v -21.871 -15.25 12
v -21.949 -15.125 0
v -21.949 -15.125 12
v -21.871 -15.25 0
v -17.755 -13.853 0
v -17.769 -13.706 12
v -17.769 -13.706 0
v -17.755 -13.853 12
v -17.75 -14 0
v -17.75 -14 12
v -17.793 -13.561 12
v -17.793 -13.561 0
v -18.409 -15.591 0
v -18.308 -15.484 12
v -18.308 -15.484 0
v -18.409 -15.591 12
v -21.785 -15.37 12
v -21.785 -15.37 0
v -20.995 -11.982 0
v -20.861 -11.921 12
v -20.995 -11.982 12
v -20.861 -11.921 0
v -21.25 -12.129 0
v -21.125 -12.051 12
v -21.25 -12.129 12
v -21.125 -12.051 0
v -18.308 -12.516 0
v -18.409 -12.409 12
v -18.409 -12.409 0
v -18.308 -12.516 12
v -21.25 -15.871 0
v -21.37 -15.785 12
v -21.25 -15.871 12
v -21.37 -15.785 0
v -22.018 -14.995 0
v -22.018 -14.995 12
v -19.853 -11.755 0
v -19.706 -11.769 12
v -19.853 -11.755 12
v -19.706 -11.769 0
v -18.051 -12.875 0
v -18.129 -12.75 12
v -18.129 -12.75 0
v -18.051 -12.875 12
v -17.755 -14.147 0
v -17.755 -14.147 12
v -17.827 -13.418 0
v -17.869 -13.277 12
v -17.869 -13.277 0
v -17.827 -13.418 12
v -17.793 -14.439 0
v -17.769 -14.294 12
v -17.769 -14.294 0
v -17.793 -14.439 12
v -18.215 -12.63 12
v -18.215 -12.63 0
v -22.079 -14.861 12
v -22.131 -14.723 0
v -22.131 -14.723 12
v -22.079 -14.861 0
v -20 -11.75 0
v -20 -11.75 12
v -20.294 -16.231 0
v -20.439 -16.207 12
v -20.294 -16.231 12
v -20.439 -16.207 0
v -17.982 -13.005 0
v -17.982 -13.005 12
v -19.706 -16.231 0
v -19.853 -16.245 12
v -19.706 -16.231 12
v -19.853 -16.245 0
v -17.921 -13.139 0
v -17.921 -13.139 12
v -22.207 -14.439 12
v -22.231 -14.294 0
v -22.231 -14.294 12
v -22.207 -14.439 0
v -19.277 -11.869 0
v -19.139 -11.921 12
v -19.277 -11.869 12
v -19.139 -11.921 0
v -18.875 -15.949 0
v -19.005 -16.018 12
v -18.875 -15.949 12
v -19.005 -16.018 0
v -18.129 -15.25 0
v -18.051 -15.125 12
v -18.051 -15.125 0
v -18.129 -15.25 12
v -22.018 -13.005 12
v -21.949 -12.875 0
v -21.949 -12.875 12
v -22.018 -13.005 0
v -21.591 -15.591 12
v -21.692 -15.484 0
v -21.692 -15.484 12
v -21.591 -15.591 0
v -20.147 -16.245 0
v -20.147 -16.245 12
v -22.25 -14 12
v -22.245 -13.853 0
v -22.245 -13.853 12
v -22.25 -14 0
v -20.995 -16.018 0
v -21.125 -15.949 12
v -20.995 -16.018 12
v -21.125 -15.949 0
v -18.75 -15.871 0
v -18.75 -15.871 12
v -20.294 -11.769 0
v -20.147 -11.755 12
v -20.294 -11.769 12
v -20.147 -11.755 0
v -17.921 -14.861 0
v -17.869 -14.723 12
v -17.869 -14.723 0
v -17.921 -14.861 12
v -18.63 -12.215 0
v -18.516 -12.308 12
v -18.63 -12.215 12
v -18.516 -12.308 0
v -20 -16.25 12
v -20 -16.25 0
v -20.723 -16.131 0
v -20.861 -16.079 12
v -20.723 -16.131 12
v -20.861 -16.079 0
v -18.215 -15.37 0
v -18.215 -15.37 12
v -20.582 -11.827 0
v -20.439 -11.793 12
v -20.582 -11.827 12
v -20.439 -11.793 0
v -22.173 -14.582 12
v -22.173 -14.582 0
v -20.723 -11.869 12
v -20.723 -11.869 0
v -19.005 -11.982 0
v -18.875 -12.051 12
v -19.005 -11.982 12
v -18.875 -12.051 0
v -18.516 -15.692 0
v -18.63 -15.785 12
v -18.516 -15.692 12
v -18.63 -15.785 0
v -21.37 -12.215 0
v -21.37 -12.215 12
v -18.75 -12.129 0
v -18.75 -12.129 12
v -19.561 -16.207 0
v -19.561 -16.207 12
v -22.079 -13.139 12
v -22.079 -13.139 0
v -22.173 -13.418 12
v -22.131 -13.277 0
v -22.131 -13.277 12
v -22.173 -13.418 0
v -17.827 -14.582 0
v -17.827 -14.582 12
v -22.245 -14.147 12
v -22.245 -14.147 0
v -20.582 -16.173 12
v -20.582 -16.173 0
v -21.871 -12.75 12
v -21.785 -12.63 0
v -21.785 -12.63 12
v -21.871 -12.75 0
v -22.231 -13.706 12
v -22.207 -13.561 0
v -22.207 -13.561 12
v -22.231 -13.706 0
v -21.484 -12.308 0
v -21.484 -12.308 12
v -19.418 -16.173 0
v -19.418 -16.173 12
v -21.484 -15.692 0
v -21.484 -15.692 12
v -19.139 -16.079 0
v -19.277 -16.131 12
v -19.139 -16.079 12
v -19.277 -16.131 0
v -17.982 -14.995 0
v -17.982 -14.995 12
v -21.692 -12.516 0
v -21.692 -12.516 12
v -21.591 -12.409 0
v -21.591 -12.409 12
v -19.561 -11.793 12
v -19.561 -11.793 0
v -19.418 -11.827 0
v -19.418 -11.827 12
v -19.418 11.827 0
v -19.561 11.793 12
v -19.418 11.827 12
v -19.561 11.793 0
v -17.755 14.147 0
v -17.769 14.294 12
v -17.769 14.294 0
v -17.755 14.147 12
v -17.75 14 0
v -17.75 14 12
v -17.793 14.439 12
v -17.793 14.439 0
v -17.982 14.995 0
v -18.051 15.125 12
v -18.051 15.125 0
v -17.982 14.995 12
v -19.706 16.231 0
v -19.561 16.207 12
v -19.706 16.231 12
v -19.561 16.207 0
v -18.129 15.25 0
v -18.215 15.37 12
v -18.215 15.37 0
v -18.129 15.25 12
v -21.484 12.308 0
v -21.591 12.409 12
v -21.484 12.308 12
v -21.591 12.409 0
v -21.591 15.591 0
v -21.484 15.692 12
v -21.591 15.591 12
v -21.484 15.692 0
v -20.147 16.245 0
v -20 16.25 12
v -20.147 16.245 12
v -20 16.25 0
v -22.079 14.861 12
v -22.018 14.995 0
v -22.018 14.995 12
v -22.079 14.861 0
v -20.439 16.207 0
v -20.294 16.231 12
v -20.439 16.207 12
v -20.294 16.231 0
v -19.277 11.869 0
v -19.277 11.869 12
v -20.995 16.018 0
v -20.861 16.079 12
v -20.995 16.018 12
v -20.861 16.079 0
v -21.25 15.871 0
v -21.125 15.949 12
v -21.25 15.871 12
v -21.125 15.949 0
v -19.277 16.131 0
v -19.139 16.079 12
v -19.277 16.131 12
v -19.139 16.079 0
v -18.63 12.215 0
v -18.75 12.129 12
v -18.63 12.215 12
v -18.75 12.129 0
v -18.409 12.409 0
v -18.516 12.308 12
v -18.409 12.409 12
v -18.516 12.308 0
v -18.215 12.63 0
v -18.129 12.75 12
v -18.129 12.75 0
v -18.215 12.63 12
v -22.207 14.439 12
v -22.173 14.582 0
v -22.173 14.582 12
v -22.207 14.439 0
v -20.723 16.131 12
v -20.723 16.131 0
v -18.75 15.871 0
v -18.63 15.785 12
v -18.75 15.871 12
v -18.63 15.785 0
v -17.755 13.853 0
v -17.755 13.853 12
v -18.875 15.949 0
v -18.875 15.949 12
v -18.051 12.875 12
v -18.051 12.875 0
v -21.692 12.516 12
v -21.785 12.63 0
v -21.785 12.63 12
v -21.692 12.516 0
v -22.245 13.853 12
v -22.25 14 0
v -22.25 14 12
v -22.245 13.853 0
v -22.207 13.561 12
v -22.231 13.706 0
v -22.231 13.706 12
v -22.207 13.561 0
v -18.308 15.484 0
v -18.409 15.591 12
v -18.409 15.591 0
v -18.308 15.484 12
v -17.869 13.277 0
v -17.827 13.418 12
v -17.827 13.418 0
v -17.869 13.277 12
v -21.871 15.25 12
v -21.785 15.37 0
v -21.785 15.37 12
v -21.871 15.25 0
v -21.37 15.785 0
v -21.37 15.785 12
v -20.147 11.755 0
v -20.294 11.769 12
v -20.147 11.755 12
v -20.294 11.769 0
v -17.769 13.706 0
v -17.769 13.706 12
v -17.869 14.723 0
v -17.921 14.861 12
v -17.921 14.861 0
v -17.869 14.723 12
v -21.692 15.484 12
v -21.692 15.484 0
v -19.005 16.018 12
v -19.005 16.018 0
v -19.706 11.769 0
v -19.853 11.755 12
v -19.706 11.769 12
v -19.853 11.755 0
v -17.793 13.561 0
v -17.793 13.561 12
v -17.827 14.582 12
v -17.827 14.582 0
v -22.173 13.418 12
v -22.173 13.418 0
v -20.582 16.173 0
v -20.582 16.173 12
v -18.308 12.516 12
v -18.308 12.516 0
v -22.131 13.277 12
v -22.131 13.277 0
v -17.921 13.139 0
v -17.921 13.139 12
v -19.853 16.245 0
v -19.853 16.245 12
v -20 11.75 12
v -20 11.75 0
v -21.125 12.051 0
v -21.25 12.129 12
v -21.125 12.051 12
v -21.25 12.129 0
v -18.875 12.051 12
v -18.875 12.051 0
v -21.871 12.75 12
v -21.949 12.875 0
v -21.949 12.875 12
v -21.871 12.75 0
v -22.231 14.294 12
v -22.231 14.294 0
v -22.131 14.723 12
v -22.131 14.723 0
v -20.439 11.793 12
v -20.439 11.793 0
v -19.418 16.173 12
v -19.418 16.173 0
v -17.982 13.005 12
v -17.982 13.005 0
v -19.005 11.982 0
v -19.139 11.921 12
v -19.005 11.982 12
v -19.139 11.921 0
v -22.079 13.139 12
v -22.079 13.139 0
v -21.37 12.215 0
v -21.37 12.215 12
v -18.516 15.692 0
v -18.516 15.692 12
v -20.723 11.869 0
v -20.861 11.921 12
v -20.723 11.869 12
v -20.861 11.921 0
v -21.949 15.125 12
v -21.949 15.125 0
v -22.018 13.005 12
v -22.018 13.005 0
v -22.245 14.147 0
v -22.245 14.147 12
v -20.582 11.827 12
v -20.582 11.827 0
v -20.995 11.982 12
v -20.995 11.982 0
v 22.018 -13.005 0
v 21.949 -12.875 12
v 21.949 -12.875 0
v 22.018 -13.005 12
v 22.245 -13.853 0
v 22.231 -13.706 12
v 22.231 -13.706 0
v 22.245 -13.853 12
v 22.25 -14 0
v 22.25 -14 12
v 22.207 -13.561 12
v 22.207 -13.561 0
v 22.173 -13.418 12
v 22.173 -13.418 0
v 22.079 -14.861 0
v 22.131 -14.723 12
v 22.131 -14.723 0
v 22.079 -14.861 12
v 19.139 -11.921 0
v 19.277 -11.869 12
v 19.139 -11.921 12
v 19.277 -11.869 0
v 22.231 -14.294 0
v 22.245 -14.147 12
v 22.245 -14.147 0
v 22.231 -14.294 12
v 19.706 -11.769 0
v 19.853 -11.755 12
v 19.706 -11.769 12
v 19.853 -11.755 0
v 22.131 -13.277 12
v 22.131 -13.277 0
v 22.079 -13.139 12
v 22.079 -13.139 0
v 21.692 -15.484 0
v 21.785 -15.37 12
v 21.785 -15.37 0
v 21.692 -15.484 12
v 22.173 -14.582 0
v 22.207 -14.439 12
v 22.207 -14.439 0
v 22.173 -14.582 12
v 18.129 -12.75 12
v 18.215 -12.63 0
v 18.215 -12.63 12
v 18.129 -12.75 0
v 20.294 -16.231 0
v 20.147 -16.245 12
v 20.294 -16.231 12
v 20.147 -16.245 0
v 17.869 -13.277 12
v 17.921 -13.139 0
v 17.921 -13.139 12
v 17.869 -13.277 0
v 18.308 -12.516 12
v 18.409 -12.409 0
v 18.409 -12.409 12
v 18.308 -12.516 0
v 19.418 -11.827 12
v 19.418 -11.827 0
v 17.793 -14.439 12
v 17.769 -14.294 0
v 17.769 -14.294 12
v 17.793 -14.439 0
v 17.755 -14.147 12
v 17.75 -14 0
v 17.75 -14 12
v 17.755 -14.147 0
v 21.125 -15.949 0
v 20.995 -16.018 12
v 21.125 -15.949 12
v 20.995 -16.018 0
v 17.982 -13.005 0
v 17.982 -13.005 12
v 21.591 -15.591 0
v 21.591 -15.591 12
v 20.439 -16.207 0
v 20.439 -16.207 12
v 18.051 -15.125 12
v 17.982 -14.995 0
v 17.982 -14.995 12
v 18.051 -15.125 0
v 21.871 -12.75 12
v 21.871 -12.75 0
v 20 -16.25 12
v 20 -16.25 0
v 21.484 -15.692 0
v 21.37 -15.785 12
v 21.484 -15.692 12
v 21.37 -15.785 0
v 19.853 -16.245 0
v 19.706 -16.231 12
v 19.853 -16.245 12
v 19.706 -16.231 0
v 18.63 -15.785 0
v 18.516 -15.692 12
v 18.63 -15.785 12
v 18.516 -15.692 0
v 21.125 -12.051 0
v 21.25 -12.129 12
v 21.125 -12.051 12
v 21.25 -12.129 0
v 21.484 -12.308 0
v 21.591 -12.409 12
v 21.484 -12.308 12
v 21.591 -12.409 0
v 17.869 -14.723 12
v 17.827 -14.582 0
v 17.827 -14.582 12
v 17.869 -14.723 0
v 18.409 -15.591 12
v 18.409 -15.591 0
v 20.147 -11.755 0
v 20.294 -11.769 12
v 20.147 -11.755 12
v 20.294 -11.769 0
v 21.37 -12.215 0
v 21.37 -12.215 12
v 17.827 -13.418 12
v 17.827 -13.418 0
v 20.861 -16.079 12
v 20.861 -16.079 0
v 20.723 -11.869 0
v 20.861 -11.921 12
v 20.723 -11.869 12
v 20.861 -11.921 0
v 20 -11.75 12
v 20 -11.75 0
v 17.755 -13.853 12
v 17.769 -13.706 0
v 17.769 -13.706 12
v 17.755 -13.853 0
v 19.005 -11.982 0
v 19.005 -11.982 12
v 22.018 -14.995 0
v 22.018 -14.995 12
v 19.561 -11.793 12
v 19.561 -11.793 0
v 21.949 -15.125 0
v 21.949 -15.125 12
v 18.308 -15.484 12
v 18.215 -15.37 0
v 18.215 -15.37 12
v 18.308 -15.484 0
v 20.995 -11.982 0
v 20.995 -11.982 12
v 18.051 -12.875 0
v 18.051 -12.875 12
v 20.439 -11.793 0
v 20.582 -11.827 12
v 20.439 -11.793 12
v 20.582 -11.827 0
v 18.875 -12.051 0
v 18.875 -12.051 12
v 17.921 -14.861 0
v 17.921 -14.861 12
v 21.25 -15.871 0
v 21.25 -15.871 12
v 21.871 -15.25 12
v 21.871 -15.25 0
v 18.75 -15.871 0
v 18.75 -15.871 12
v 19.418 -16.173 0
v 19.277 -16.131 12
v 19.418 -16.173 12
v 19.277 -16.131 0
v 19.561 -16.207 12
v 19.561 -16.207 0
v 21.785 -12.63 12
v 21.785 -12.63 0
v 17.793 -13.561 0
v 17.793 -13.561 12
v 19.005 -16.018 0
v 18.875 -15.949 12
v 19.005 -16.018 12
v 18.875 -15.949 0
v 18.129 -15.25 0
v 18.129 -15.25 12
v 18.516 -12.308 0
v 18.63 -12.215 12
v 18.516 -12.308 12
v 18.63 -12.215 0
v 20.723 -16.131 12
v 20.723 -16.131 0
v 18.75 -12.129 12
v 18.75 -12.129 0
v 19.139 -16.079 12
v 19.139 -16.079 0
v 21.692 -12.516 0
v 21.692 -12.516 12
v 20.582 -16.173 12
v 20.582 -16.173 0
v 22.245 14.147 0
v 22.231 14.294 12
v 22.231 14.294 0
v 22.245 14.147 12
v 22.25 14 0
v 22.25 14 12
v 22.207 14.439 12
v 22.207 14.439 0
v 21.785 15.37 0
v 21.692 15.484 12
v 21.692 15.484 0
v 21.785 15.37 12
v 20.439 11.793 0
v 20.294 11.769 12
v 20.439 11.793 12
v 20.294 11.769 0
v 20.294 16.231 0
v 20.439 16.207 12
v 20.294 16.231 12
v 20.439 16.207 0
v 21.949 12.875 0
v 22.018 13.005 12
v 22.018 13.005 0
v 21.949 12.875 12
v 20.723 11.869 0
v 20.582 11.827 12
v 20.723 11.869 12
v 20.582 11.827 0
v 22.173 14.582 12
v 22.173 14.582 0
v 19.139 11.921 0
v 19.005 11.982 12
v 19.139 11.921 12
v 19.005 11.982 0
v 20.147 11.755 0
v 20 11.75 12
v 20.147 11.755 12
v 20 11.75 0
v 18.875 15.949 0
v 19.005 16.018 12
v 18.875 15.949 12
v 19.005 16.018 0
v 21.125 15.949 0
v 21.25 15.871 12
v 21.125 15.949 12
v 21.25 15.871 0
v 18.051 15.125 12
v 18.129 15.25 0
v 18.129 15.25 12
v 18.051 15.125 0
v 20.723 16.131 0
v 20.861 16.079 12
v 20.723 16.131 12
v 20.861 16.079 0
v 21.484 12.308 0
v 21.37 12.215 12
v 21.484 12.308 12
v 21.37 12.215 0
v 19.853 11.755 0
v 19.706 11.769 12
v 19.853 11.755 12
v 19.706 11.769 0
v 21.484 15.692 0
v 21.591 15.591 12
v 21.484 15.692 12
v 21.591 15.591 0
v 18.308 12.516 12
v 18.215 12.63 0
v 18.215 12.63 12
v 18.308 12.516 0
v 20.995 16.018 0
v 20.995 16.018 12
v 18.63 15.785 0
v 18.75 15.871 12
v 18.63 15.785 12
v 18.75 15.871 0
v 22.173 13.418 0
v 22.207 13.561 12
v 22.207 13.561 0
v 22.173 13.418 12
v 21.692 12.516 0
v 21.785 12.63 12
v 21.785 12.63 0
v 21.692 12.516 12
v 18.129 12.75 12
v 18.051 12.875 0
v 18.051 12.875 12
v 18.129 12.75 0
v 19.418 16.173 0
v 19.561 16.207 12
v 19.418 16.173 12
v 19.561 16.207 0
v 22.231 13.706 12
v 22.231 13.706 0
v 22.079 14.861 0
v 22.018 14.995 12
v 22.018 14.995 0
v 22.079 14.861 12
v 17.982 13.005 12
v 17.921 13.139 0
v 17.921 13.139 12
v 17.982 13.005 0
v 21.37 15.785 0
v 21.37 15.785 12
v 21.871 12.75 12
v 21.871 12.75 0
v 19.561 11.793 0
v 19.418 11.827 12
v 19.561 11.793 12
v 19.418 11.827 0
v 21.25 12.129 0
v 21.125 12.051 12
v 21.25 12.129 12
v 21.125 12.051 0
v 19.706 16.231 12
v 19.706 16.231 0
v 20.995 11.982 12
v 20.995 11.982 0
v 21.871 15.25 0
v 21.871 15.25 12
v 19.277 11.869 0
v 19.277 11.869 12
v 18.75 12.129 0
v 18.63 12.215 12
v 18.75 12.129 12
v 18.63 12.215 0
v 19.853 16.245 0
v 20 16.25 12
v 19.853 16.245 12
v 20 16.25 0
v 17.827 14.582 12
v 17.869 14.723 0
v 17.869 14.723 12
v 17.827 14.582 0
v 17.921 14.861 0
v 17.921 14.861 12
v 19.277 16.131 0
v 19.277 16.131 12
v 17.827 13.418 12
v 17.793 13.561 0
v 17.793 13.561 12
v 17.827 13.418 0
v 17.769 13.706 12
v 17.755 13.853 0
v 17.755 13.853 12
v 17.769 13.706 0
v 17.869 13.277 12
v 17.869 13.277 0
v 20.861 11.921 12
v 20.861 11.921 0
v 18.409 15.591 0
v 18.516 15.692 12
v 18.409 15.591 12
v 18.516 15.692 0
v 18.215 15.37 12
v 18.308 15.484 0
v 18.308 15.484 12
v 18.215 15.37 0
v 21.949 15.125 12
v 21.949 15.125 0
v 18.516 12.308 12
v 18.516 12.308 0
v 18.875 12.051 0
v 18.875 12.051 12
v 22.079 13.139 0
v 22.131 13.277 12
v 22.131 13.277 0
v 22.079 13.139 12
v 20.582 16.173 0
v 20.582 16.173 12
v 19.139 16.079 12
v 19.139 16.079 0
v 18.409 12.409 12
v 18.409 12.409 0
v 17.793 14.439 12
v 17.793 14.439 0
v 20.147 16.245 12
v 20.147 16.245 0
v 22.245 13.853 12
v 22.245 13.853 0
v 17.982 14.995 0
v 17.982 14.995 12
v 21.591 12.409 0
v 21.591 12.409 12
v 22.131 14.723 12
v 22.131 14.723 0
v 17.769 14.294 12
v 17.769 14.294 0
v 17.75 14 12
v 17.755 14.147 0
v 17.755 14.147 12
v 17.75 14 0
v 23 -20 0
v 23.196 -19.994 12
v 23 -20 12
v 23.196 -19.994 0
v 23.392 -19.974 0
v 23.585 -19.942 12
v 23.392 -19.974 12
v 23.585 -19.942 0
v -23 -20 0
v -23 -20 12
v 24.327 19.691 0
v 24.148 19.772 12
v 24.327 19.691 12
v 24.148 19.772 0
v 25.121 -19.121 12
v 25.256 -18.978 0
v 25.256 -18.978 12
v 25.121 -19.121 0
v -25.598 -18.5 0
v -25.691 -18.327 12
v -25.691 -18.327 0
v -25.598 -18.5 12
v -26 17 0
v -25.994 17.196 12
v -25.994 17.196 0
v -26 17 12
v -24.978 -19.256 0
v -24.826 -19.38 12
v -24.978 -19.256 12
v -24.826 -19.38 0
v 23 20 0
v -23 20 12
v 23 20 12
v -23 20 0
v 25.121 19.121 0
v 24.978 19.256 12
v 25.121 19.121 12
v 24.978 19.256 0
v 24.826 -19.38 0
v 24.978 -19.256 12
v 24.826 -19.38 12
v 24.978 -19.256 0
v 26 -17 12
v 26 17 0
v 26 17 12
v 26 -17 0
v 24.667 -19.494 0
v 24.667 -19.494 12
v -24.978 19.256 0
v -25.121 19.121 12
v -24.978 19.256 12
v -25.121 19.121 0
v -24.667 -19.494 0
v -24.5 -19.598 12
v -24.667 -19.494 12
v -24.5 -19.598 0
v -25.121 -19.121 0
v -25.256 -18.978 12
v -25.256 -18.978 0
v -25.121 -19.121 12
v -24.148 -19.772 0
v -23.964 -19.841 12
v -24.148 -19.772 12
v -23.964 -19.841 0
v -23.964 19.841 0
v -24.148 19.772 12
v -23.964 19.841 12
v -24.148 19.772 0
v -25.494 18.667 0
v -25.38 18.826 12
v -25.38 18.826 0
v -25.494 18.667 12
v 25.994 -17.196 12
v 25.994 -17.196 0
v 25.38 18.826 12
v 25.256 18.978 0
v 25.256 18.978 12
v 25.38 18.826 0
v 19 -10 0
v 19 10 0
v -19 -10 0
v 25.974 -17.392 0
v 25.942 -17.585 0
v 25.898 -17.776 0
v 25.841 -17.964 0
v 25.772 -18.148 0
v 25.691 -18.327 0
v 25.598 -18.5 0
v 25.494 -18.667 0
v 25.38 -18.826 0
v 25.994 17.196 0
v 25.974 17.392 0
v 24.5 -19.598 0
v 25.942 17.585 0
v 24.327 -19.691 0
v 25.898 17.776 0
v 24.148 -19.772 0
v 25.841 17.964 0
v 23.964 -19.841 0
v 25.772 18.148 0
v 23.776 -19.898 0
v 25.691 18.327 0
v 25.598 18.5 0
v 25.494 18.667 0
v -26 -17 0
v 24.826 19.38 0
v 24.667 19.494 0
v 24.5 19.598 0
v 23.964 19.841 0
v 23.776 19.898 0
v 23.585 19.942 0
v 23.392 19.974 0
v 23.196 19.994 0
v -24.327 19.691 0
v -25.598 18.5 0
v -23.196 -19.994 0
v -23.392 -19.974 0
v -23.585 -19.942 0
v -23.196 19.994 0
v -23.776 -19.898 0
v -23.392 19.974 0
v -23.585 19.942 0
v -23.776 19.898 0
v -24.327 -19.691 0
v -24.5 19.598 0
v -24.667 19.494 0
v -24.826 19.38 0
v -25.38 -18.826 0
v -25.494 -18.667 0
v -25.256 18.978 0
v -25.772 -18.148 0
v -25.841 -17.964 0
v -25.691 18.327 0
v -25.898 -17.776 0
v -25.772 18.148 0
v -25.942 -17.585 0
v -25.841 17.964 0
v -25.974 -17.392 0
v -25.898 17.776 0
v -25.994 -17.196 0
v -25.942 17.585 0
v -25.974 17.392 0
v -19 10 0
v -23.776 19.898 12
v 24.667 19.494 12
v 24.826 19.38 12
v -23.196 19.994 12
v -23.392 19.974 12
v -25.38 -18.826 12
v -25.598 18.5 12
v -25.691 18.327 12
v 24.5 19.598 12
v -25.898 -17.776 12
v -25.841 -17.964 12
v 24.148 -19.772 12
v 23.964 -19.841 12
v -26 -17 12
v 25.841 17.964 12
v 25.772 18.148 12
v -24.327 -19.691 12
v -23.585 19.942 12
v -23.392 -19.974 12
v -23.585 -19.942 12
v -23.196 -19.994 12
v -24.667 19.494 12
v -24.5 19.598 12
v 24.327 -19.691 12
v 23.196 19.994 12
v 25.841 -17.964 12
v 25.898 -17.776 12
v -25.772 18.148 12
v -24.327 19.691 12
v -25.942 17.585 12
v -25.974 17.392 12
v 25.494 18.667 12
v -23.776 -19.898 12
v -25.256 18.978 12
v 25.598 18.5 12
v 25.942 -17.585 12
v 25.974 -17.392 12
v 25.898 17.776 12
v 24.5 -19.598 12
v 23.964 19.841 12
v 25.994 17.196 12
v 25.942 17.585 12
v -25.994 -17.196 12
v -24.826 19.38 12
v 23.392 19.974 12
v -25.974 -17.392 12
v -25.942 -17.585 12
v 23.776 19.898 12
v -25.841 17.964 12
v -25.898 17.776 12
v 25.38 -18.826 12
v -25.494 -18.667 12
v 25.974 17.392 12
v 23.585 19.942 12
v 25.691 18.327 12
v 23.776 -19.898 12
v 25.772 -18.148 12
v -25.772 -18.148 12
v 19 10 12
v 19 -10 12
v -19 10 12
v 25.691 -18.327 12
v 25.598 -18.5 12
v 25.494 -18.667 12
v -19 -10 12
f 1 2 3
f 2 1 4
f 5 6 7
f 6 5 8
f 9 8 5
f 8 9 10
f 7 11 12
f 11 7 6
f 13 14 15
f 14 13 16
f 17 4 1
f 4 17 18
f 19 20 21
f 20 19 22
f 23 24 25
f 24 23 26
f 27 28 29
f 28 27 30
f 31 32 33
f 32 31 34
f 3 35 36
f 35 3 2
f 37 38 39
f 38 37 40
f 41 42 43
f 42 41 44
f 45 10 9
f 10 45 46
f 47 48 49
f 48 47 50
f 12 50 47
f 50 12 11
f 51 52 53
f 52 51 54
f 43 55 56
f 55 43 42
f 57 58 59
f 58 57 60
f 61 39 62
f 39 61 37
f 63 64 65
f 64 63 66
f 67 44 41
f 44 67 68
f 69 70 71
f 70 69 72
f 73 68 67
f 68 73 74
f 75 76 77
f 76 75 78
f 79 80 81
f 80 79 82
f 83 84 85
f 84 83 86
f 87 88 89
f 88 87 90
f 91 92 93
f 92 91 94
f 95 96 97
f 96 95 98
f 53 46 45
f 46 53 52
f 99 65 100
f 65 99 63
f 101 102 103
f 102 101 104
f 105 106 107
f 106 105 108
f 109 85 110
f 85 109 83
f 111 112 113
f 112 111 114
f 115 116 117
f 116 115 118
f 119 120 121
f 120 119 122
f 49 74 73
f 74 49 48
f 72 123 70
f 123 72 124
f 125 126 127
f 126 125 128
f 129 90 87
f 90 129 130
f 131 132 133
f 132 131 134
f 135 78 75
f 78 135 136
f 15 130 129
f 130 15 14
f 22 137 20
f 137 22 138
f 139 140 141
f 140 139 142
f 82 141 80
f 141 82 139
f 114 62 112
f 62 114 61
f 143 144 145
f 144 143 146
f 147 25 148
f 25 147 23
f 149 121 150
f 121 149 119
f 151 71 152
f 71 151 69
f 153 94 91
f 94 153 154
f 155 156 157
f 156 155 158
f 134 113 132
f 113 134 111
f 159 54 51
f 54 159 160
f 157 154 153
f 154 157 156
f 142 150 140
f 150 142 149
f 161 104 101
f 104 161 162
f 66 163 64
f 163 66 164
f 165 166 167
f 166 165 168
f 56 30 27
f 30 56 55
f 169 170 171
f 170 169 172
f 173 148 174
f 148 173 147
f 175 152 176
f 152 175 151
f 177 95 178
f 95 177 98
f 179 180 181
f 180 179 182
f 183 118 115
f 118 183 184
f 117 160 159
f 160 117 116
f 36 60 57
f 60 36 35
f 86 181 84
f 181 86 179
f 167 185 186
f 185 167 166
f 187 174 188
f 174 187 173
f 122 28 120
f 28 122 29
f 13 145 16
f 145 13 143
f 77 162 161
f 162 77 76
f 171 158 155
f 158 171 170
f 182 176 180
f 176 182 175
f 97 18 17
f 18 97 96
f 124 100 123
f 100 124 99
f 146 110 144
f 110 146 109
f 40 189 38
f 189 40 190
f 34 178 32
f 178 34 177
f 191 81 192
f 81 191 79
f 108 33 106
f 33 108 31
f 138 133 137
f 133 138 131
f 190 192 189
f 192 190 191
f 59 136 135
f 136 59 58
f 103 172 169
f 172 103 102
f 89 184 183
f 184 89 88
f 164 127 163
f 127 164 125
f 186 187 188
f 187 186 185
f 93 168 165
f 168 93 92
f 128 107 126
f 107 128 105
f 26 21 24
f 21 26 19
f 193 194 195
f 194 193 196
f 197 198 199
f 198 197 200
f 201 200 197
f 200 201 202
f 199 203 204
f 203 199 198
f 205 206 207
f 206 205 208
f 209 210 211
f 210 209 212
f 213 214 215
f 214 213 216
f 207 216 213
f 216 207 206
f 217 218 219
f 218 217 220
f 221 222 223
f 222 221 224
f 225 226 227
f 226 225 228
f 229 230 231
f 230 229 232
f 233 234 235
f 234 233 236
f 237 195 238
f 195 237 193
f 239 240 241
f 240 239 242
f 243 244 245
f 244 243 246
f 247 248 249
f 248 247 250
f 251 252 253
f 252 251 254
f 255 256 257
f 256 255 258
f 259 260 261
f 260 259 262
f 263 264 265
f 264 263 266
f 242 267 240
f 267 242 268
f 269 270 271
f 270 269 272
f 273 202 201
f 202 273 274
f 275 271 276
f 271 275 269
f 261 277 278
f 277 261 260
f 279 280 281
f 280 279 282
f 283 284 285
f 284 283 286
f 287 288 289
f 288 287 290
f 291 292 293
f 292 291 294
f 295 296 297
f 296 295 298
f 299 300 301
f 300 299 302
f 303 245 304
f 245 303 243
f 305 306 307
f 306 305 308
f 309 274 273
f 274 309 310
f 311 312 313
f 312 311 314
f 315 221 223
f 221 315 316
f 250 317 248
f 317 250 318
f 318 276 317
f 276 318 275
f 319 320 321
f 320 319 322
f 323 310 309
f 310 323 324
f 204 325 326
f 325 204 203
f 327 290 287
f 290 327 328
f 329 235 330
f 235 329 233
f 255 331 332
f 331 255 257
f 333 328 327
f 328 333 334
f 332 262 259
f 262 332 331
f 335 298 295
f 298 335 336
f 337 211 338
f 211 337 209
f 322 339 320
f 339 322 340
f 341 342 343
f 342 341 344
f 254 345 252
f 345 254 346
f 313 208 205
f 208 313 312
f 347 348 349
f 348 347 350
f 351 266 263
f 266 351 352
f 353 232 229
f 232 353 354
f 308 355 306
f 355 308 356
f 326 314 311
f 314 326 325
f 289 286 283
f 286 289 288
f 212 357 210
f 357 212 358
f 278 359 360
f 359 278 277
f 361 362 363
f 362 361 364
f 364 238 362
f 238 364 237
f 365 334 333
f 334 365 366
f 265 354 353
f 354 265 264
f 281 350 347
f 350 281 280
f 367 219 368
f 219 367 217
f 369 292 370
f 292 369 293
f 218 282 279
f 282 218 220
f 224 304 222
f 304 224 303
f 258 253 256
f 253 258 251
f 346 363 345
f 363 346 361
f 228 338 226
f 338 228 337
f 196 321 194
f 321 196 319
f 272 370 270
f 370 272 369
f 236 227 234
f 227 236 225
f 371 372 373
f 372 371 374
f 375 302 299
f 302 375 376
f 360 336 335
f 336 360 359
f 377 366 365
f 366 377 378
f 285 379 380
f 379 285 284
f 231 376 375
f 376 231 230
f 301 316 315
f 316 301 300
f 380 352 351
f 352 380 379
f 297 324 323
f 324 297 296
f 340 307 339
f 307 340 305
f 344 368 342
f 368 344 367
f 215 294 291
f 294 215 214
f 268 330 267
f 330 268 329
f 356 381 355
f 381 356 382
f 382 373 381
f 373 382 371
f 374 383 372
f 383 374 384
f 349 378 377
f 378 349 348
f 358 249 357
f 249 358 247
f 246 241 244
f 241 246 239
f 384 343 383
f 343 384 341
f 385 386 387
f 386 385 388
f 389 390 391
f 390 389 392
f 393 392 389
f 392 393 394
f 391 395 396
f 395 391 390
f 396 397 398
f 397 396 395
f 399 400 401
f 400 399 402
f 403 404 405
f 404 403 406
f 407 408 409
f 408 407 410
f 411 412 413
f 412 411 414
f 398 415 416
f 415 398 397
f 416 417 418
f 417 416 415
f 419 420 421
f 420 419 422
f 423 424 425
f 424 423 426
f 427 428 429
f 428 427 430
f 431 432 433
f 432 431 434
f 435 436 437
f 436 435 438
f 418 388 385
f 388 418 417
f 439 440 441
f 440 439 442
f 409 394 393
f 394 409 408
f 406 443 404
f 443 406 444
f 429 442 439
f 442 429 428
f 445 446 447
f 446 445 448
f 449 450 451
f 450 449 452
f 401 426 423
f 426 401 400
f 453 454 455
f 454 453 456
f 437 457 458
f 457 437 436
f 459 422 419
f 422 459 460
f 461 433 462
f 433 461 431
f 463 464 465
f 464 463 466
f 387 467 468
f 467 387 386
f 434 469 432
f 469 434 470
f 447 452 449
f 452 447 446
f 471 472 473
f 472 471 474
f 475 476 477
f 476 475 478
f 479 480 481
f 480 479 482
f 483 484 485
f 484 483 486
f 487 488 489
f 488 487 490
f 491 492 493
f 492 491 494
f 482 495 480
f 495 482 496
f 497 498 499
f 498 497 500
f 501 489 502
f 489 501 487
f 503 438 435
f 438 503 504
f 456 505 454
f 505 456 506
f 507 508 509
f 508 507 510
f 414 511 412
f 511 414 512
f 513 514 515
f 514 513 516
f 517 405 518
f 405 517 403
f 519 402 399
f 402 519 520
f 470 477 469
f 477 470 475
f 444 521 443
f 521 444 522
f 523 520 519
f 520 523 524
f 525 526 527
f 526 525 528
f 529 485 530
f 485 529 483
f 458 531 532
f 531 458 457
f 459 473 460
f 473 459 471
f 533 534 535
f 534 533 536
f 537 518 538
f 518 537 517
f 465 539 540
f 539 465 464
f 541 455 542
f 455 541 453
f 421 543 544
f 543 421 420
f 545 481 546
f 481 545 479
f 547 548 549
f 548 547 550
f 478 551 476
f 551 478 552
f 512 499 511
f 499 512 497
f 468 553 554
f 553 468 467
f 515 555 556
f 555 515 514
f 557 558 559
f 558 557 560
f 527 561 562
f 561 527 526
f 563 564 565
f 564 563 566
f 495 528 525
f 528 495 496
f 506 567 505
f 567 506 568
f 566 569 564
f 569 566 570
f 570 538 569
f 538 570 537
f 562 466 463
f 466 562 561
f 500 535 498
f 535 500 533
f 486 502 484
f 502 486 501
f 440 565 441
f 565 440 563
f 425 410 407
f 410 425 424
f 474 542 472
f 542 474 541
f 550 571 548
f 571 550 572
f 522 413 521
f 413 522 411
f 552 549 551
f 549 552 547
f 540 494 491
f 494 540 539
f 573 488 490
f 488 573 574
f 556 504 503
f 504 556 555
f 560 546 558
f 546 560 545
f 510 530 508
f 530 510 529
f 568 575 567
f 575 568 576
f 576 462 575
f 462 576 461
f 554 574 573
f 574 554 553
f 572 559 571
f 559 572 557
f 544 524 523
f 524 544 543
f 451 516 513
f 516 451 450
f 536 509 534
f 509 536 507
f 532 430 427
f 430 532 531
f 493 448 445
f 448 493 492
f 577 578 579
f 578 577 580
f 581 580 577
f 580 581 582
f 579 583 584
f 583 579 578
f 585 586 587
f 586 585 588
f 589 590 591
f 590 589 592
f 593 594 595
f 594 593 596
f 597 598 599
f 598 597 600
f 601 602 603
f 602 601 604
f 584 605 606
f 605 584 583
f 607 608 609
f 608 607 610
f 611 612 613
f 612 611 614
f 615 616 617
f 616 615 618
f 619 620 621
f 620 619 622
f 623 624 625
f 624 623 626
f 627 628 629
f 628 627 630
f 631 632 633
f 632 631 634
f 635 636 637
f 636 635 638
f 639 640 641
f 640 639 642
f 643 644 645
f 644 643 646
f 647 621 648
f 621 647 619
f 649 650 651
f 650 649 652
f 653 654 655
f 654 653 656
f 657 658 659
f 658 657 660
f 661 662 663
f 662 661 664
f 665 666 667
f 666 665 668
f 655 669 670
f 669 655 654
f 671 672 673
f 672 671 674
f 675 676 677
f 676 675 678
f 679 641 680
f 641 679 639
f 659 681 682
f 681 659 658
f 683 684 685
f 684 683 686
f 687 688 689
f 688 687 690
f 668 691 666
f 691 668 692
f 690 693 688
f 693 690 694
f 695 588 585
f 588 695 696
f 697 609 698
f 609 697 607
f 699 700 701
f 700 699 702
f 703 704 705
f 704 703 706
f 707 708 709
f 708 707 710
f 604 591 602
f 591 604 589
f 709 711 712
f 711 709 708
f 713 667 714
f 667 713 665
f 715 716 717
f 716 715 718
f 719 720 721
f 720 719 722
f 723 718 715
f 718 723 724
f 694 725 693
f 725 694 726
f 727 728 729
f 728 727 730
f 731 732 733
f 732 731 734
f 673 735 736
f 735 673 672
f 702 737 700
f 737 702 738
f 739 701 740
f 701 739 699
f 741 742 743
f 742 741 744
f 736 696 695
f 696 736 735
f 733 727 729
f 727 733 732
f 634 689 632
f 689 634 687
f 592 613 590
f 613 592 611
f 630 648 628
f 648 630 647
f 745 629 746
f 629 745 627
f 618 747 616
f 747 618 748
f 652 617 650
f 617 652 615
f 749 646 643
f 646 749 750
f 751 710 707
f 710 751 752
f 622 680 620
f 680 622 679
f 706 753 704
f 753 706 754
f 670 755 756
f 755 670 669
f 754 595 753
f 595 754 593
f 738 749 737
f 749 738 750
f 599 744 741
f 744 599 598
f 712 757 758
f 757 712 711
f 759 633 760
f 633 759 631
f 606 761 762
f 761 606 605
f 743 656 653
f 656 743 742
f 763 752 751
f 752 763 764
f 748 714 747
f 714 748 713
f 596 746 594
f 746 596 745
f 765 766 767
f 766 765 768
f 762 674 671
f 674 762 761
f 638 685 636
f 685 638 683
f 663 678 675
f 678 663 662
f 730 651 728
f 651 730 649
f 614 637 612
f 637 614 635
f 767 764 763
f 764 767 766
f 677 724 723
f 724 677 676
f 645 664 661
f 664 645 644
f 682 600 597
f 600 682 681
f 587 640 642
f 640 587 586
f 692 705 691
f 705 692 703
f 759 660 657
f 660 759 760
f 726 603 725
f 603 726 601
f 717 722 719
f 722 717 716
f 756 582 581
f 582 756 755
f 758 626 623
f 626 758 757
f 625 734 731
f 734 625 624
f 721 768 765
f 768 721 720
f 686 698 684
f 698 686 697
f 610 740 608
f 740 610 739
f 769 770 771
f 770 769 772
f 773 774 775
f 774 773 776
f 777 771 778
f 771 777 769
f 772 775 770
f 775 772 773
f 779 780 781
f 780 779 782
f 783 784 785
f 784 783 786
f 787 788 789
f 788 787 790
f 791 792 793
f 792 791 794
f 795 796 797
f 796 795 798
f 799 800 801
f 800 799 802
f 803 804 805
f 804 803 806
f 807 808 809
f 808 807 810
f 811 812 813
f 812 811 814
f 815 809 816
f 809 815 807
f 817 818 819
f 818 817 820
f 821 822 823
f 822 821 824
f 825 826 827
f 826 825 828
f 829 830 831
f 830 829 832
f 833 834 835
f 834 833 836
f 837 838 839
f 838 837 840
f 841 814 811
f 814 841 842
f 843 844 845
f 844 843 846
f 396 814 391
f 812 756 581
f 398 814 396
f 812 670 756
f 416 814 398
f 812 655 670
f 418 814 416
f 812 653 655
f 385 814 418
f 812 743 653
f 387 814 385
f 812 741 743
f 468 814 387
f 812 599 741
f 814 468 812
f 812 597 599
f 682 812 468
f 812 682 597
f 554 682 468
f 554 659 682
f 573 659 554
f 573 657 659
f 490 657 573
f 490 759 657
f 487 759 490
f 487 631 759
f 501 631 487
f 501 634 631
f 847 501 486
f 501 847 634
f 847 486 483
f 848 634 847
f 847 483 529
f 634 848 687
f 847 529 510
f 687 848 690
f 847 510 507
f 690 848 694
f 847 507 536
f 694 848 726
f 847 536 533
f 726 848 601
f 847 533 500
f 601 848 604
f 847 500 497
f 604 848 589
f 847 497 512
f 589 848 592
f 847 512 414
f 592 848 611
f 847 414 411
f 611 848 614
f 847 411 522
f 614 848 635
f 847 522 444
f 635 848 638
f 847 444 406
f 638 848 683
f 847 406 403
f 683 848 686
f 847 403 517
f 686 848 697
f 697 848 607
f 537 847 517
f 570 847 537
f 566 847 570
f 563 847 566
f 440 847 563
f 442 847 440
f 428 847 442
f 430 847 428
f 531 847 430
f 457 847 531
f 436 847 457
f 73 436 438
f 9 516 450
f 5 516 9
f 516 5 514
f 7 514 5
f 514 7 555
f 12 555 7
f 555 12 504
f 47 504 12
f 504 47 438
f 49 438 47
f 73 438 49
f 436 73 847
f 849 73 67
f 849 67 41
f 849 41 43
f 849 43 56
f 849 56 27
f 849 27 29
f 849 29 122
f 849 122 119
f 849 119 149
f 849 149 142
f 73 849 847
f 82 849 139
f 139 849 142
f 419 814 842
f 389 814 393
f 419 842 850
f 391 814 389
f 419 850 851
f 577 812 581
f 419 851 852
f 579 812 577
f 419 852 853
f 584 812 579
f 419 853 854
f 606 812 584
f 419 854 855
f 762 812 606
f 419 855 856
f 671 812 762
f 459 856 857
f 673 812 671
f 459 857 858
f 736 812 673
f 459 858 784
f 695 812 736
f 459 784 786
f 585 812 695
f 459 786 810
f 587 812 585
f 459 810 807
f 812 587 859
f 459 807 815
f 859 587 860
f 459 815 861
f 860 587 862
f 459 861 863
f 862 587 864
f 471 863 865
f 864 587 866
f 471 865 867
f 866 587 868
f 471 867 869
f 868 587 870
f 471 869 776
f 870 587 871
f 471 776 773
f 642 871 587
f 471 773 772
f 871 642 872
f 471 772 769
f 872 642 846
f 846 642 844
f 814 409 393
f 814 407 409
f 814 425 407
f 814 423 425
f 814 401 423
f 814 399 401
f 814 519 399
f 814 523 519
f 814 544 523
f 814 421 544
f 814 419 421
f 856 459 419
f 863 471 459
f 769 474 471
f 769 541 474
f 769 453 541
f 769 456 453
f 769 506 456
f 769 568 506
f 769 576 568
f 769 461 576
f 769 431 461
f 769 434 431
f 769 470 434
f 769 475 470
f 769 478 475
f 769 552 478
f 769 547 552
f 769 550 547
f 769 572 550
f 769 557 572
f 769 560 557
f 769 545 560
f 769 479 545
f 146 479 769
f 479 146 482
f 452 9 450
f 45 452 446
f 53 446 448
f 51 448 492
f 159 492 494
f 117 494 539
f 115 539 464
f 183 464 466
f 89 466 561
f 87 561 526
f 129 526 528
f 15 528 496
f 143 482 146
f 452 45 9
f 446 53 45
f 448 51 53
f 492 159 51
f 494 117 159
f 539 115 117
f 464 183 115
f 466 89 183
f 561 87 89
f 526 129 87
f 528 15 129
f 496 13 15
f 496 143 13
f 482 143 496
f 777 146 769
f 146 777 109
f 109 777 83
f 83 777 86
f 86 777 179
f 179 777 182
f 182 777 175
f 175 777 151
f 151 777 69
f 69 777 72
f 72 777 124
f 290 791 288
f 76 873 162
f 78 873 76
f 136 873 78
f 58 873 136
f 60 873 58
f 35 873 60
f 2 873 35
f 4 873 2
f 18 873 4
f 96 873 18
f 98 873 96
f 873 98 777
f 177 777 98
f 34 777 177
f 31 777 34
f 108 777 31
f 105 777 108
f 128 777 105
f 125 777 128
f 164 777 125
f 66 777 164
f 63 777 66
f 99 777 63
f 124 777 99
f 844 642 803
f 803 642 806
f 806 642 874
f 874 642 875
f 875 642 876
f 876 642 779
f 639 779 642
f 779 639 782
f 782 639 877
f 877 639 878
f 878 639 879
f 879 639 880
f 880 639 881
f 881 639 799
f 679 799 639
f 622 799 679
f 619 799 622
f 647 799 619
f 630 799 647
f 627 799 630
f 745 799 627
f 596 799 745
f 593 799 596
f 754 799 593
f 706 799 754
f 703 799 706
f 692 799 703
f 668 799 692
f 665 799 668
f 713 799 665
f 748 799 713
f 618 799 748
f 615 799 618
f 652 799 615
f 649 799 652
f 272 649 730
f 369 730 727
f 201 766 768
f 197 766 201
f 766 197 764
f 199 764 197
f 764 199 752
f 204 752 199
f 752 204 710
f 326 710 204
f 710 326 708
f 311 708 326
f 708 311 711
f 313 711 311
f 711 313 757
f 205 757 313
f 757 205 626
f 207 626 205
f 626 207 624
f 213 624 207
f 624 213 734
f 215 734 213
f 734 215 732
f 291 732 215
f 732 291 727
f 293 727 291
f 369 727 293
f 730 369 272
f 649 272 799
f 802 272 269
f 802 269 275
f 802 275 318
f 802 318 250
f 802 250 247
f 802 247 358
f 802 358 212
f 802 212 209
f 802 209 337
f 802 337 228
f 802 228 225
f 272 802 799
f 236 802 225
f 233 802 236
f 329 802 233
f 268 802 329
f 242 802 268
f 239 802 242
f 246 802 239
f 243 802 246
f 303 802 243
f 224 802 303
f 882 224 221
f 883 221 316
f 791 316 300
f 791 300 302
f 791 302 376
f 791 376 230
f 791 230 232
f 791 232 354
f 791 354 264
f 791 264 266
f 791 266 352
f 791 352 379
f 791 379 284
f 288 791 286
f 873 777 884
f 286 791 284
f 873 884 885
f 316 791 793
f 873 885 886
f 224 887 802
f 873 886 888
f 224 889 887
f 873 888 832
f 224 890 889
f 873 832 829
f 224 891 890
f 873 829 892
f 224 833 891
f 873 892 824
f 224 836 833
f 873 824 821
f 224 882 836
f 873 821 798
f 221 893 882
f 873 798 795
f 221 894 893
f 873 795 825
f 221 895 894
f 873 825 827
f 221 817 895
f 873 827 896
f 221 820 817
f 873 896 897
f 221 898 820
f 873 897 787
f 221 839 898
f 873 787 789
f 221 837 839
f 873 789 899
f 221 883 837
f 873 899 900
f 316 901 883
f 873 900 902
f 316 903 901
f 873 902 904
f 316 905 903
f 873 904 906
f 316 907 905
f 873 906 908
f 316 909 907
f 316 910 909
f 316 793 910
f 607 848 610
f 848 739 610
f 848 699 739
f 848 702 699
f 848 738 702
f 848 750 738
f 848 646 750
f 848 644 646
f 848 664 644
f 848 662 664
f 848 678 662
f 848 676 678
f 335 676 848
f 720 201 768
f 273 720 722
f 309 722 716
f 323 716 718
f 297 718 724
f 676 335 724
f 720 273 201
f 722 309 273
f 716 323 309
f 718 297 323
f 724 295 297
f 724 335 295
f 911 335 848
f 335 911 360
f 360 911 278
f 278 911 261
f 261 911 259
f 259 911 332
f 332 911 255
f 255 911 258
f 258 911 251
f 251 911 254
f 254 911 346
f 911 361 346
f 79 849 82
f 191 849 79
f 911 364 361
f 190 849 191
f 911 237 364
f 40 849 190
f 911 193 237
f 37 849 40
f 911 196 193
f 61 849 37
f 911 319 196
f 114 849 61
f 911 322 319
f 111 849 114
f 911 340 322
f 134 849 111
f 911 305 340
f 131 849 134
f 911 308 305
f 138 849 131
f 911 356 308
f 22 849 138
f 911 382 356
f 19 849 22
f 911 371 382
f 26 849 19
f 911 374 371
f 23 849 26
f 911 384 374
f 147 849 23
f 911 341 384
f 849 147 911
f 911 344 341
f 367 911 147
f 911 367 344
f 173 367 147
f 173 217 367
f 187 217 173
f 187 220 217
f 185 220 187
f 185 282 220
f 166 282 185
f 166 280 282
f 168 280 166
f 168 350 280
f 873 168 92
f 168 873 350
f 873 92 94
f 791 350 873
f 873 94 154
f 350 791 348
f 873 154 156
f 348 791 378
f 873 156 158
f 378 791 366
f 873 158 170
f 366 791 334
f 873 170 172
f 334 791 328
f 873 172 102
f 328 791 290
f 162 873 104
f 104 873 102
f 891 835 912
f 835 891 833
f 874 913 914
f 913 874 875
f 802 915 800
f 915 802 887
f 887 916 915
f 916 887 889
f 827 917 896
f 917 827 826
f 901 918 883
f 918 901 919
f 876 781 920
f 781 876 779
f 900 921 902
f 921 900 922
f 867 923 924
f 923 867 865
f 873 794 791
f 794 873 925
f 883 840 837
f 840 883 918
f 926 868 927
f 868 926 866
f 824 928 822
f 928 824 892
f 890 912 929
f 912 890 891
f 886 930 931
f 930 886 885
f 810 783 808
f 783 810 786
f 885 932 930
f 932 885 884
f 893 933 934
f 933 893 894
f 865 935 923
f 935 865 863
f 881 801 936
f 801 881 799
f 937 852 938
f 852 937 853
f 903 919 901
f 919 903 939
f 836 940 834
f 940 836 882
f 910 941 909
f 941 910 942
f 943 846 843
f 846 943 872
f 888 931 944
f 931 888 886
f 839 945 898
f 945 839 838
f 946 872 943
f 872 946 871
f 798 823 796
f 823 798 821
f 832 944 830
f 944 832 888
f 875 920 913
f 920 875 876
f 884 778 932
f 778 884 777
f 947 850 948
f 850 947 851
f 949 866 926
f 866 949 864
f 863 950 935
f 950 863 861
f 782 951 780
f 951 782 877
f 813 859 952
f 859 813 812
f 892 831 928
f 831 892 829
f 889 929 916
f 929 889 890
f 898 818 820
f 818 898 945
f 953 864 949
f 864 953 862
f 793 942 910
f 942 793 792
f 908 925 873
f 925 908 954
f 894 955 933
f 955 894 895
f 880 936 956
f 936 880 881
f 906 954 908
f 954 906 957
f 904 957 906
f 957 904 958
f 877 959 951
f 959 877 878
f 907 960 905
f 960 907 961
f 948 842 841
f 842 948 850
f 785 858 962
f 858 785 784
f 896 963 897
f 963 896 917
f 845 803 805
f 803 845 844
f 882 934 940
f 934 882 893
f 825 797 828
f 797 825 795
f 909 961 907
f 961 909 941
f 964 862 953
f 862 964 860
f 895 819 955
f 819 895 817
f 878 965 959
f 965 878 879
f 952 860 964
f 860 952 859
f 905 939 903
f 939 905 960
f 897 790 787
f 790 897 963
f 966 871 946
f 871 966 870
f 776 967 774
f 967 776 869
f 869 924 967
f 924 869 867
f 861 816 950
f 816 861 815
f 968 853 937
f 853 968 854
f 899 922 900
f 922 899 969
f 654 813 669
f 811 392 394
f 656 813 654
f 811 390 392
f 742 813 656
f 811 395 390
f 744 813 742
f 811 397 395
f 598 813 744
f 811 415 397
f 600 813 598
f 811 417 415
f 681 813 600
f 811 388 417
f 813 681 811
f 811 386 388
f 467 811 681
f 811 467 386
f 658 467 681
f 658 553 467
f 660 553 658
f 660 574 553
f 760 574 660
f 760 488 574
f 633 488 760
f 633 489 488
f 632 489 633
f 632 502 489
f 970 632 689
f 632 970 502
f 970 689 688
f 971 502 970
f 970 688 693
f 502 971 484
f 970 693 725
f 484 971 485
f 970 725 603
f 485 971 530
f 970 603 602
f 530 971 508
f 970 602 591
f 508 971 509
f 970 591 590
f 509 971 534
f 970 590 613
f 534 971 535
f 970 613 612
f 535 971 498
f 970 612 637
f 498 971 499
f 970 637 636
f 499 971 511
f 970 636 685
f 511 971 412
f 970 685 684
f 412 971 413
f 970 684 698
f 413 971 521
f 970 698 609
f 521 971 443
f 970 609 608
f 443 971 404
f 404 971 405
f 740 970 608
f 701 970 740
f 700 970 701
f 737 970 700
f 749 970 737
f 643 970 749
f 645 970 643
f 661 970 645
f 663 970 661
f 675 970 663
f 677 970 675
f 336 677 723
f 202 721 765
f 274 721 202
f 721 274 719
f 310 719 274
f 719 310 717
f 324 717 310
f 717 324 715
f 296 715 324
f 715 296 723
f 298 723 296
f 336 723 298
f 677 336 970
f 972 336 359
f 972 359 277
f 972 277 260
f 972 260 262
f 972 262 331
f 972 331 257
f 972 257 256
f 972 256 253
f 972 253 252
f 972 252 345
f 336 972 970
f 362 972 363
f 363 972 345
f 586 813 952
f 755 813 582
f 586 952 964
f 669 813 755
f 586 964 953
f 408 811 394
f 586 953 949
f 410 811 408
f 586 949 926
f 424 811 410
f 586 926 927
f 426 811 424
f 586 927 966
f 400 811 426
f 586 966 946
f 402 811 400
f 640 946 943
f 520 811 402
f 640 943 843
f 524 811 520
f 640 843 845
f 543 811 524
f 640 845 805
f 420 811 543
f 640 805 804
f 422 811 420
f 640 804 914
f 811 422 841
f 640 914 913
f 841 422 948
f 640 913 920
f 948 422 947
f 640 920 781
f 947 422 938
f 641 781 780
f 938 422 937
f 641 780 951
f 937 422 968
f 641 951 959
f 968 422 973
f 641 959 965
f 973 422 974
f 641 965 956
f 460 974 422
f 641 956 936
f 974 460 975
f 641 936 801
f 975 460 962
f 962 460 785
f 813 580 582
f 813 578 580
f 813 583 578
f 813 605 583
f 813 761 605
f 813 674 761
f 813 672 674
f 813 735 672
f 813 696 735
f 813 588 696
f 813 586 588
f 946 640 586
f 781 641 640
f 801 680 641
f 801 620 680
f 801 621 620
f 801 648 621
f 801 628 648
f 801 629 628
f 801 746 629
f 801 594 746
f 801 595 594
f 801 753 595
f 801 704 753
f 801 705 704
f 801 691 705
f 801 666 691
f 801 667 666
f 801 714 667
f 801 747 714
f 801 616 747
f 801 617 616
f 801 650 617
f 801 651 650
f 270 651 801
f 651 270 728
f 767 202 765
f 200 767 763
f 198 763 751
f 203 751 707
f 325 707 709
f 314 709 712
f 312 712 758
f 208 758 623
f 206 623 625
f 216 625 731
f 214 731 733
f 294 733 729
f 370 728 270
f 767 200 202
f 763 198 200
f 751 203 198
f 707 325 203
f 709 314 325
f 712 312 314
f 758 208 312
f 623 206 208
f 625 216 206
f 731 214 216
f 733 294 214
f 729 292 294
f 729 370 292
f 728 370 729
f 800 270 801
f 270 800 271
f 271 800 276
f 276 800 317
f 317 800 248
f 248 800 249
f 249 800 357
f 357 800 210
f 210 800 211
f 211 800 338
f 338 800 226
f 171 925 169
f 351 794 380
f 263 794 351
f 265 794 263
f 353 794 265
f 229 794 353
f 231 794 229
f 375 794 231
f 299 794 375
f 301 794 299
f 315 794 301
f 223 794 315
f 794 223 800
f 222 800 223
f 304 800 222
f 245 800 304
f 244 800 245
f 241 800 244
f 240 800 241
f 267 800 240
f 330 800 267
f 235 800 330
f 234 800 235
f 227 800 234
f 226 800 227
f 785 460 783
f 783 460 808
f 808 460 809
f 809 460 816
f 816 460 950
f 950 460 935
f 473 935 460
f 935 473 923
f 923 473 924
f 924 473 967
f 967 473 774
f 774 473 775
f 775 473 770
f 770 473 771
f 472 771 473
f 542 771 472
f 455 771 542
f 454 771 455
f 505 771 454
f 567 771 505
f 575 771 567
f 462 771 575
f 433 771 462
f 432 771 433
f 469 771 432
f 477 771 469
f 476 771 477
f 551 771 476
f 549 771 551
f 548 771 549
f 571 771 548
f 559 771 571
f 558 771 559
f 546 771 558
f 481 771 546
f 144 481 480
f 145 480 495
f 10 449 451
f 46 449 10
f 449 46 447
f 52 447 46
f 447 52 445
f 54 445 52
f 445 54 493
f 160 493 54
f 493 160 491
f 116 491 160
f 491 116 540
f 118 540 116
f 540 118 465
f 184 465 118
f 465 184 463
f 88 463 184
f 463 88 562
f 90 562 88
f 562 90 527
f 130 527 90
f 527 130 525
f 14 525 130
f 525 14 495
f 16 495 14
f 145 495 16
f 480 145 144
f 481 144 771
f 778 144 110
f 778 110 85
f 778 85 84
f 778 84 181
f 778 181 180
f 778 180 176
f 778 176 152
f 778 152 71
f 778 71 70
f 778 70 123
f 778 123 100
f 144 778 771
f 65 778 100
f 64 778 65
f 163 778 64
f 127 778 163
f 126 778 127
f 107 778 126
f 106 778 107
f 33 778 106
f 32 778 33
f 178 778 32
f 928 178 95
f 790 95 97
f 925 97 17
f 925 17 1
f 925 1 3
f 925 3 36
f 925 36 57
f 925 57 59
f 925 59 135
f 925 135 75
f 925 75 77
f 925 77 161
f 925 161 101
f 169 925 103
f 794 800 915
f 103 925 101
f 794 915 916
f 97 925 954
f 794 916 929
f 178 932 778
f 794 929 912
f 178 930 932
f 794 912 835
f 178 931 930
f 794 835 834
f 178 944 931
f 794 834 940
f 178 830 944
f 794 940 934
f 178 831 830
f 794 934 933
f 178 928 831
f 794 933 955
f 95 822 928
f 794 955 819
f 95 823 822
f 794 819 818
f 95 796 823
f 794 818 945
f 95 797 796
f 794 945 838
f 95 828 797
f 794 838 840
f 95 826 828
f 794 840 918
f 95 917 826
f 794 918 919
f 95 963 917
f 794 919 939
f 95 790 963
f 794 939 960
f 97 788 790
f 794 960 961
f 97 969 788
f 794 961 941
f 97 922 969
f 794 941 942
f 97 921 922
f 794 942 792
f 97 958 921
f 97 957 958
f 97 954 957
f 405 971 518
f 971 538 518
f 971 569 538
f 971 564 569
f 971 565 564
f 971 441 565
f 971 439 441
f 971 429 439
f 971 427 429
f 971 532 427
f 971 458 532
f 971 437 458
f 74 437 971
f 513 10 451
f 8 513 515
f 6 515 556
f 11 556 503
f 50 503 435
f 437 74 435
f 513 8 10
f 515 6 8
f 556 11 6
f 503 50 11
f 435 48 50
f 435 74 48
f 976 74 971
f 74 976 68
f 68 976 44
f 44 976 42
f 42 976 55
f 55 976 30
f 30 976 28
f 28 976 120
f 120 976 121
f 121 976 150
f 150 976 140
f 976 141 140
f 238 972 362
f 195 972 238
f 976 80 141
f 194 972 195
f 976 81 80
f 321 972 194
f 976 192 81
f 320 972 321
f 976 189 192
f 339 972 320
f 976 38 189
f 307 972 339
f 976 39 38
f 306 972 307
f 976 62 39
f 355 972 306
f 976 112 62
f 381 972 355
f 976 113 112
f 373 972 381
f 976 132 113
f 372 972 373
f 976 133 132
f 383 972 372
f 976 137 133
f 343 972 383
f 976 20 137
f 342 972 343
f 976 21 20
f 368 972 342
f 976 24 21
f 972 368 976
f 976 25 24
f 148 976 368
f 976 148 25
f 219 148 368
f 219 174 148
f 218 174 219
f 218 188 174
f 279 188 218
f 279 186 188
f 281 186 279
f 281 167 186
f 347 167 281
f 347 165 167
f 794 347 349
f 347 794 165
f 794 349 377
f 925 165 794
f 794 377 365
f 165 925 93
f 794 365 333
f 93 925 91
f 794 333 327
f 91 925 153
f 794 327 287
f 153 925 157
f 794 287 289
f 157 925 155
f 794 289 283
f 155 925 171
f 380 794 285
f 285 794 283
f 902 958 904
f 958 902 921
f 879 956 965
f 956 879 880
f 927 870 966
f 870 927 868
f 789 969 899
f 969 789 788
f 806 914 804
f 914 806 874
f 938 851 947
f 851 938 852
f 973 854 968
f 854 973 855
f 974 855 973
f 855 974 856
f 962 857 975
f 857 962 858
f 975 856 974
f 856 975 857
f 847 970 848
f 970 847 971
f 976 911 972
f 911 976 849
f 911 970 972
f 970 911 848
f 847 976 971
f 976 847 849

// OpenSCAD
// モーター固定板 / 単位 mm
// 穴中心間隔40 x 28、厚さ5、M4ねじ用通し穴4個。
// CLI: openscad -o motor_mount_plate.stl motor_mount_plate.scad

plate_thickness = 12;
hole_pitch_x = 40;
hole_pitch_y = 28;
hole_diameter = 4.5; // M4用クリアランス。造形に応じて調整。
edge_margin = 6; // 穴中心から板外周まで
corner_radius = 3;
opening_width = 38; // 中央開口の長辺
opening_depth = 20; // 中央開口の短辺

plate_width = hole_pitch_x + 2*edge_margin;
plate_depth = hole_pitch_y + 2*edge_margin;
$fn = 96;
epsilon = 0.01;

assert(plate_thickness>0 && hole_pitch_x>0 && hole_pitch_y>0);
assert(hole_diameter>0 && edge_margin>hole_diameter/2);
assert(corner_radius>=0 && corner_radius<=edge_margin);
assert(opening_width>0 && opening_width<hole_pitch_x
       && opening_depth>0 && opening_depth<hole_pitch_y);
assert(sqrt(pow((hole_pitch_x-opening_width)/2,2)
            + pow((hole_pitch_y-opening_depth)/2,2))>hole_diameter/2,
       "中央開口とネジ穴が接触しています");

module plate_outline() {
    if (corner_radius>0)
        offset(r=corner_radius)
            square([plate_width-2*corner_radius,
                    plate_depth-2*corner_radius],center=true);
    else
        square([plate_width,plate_depth],center=true);
}

difference() {
    linear_extrude(height=plate_thickness) plate_outline();
    translate([-opening_width/2,-opening_depth/2,-epsilon])
        cube([opening_width,opening_depth,plate_thickness+2*epsilon]);
    for (x=[-hole_pitch_x/2,hole_pitch_x/2])
        for (y=[-hole_pitch_y/2,hole_pitch_y/2])
            translate([x,y,-epsilon])
                cylinder(d=hole_diameter,h=plate_thickness+2*epsilon);
}

echo("Plate size mm",[plate_width,plate_depth,plate_thickness]);
echo("Hole center spacing mm",[hole_pitch_x,hole_pitch_y]);
echo("M4 through hole diameter mm",hole_diameter);
echo("Central opening mm",[opening_width,opening_depth]);
